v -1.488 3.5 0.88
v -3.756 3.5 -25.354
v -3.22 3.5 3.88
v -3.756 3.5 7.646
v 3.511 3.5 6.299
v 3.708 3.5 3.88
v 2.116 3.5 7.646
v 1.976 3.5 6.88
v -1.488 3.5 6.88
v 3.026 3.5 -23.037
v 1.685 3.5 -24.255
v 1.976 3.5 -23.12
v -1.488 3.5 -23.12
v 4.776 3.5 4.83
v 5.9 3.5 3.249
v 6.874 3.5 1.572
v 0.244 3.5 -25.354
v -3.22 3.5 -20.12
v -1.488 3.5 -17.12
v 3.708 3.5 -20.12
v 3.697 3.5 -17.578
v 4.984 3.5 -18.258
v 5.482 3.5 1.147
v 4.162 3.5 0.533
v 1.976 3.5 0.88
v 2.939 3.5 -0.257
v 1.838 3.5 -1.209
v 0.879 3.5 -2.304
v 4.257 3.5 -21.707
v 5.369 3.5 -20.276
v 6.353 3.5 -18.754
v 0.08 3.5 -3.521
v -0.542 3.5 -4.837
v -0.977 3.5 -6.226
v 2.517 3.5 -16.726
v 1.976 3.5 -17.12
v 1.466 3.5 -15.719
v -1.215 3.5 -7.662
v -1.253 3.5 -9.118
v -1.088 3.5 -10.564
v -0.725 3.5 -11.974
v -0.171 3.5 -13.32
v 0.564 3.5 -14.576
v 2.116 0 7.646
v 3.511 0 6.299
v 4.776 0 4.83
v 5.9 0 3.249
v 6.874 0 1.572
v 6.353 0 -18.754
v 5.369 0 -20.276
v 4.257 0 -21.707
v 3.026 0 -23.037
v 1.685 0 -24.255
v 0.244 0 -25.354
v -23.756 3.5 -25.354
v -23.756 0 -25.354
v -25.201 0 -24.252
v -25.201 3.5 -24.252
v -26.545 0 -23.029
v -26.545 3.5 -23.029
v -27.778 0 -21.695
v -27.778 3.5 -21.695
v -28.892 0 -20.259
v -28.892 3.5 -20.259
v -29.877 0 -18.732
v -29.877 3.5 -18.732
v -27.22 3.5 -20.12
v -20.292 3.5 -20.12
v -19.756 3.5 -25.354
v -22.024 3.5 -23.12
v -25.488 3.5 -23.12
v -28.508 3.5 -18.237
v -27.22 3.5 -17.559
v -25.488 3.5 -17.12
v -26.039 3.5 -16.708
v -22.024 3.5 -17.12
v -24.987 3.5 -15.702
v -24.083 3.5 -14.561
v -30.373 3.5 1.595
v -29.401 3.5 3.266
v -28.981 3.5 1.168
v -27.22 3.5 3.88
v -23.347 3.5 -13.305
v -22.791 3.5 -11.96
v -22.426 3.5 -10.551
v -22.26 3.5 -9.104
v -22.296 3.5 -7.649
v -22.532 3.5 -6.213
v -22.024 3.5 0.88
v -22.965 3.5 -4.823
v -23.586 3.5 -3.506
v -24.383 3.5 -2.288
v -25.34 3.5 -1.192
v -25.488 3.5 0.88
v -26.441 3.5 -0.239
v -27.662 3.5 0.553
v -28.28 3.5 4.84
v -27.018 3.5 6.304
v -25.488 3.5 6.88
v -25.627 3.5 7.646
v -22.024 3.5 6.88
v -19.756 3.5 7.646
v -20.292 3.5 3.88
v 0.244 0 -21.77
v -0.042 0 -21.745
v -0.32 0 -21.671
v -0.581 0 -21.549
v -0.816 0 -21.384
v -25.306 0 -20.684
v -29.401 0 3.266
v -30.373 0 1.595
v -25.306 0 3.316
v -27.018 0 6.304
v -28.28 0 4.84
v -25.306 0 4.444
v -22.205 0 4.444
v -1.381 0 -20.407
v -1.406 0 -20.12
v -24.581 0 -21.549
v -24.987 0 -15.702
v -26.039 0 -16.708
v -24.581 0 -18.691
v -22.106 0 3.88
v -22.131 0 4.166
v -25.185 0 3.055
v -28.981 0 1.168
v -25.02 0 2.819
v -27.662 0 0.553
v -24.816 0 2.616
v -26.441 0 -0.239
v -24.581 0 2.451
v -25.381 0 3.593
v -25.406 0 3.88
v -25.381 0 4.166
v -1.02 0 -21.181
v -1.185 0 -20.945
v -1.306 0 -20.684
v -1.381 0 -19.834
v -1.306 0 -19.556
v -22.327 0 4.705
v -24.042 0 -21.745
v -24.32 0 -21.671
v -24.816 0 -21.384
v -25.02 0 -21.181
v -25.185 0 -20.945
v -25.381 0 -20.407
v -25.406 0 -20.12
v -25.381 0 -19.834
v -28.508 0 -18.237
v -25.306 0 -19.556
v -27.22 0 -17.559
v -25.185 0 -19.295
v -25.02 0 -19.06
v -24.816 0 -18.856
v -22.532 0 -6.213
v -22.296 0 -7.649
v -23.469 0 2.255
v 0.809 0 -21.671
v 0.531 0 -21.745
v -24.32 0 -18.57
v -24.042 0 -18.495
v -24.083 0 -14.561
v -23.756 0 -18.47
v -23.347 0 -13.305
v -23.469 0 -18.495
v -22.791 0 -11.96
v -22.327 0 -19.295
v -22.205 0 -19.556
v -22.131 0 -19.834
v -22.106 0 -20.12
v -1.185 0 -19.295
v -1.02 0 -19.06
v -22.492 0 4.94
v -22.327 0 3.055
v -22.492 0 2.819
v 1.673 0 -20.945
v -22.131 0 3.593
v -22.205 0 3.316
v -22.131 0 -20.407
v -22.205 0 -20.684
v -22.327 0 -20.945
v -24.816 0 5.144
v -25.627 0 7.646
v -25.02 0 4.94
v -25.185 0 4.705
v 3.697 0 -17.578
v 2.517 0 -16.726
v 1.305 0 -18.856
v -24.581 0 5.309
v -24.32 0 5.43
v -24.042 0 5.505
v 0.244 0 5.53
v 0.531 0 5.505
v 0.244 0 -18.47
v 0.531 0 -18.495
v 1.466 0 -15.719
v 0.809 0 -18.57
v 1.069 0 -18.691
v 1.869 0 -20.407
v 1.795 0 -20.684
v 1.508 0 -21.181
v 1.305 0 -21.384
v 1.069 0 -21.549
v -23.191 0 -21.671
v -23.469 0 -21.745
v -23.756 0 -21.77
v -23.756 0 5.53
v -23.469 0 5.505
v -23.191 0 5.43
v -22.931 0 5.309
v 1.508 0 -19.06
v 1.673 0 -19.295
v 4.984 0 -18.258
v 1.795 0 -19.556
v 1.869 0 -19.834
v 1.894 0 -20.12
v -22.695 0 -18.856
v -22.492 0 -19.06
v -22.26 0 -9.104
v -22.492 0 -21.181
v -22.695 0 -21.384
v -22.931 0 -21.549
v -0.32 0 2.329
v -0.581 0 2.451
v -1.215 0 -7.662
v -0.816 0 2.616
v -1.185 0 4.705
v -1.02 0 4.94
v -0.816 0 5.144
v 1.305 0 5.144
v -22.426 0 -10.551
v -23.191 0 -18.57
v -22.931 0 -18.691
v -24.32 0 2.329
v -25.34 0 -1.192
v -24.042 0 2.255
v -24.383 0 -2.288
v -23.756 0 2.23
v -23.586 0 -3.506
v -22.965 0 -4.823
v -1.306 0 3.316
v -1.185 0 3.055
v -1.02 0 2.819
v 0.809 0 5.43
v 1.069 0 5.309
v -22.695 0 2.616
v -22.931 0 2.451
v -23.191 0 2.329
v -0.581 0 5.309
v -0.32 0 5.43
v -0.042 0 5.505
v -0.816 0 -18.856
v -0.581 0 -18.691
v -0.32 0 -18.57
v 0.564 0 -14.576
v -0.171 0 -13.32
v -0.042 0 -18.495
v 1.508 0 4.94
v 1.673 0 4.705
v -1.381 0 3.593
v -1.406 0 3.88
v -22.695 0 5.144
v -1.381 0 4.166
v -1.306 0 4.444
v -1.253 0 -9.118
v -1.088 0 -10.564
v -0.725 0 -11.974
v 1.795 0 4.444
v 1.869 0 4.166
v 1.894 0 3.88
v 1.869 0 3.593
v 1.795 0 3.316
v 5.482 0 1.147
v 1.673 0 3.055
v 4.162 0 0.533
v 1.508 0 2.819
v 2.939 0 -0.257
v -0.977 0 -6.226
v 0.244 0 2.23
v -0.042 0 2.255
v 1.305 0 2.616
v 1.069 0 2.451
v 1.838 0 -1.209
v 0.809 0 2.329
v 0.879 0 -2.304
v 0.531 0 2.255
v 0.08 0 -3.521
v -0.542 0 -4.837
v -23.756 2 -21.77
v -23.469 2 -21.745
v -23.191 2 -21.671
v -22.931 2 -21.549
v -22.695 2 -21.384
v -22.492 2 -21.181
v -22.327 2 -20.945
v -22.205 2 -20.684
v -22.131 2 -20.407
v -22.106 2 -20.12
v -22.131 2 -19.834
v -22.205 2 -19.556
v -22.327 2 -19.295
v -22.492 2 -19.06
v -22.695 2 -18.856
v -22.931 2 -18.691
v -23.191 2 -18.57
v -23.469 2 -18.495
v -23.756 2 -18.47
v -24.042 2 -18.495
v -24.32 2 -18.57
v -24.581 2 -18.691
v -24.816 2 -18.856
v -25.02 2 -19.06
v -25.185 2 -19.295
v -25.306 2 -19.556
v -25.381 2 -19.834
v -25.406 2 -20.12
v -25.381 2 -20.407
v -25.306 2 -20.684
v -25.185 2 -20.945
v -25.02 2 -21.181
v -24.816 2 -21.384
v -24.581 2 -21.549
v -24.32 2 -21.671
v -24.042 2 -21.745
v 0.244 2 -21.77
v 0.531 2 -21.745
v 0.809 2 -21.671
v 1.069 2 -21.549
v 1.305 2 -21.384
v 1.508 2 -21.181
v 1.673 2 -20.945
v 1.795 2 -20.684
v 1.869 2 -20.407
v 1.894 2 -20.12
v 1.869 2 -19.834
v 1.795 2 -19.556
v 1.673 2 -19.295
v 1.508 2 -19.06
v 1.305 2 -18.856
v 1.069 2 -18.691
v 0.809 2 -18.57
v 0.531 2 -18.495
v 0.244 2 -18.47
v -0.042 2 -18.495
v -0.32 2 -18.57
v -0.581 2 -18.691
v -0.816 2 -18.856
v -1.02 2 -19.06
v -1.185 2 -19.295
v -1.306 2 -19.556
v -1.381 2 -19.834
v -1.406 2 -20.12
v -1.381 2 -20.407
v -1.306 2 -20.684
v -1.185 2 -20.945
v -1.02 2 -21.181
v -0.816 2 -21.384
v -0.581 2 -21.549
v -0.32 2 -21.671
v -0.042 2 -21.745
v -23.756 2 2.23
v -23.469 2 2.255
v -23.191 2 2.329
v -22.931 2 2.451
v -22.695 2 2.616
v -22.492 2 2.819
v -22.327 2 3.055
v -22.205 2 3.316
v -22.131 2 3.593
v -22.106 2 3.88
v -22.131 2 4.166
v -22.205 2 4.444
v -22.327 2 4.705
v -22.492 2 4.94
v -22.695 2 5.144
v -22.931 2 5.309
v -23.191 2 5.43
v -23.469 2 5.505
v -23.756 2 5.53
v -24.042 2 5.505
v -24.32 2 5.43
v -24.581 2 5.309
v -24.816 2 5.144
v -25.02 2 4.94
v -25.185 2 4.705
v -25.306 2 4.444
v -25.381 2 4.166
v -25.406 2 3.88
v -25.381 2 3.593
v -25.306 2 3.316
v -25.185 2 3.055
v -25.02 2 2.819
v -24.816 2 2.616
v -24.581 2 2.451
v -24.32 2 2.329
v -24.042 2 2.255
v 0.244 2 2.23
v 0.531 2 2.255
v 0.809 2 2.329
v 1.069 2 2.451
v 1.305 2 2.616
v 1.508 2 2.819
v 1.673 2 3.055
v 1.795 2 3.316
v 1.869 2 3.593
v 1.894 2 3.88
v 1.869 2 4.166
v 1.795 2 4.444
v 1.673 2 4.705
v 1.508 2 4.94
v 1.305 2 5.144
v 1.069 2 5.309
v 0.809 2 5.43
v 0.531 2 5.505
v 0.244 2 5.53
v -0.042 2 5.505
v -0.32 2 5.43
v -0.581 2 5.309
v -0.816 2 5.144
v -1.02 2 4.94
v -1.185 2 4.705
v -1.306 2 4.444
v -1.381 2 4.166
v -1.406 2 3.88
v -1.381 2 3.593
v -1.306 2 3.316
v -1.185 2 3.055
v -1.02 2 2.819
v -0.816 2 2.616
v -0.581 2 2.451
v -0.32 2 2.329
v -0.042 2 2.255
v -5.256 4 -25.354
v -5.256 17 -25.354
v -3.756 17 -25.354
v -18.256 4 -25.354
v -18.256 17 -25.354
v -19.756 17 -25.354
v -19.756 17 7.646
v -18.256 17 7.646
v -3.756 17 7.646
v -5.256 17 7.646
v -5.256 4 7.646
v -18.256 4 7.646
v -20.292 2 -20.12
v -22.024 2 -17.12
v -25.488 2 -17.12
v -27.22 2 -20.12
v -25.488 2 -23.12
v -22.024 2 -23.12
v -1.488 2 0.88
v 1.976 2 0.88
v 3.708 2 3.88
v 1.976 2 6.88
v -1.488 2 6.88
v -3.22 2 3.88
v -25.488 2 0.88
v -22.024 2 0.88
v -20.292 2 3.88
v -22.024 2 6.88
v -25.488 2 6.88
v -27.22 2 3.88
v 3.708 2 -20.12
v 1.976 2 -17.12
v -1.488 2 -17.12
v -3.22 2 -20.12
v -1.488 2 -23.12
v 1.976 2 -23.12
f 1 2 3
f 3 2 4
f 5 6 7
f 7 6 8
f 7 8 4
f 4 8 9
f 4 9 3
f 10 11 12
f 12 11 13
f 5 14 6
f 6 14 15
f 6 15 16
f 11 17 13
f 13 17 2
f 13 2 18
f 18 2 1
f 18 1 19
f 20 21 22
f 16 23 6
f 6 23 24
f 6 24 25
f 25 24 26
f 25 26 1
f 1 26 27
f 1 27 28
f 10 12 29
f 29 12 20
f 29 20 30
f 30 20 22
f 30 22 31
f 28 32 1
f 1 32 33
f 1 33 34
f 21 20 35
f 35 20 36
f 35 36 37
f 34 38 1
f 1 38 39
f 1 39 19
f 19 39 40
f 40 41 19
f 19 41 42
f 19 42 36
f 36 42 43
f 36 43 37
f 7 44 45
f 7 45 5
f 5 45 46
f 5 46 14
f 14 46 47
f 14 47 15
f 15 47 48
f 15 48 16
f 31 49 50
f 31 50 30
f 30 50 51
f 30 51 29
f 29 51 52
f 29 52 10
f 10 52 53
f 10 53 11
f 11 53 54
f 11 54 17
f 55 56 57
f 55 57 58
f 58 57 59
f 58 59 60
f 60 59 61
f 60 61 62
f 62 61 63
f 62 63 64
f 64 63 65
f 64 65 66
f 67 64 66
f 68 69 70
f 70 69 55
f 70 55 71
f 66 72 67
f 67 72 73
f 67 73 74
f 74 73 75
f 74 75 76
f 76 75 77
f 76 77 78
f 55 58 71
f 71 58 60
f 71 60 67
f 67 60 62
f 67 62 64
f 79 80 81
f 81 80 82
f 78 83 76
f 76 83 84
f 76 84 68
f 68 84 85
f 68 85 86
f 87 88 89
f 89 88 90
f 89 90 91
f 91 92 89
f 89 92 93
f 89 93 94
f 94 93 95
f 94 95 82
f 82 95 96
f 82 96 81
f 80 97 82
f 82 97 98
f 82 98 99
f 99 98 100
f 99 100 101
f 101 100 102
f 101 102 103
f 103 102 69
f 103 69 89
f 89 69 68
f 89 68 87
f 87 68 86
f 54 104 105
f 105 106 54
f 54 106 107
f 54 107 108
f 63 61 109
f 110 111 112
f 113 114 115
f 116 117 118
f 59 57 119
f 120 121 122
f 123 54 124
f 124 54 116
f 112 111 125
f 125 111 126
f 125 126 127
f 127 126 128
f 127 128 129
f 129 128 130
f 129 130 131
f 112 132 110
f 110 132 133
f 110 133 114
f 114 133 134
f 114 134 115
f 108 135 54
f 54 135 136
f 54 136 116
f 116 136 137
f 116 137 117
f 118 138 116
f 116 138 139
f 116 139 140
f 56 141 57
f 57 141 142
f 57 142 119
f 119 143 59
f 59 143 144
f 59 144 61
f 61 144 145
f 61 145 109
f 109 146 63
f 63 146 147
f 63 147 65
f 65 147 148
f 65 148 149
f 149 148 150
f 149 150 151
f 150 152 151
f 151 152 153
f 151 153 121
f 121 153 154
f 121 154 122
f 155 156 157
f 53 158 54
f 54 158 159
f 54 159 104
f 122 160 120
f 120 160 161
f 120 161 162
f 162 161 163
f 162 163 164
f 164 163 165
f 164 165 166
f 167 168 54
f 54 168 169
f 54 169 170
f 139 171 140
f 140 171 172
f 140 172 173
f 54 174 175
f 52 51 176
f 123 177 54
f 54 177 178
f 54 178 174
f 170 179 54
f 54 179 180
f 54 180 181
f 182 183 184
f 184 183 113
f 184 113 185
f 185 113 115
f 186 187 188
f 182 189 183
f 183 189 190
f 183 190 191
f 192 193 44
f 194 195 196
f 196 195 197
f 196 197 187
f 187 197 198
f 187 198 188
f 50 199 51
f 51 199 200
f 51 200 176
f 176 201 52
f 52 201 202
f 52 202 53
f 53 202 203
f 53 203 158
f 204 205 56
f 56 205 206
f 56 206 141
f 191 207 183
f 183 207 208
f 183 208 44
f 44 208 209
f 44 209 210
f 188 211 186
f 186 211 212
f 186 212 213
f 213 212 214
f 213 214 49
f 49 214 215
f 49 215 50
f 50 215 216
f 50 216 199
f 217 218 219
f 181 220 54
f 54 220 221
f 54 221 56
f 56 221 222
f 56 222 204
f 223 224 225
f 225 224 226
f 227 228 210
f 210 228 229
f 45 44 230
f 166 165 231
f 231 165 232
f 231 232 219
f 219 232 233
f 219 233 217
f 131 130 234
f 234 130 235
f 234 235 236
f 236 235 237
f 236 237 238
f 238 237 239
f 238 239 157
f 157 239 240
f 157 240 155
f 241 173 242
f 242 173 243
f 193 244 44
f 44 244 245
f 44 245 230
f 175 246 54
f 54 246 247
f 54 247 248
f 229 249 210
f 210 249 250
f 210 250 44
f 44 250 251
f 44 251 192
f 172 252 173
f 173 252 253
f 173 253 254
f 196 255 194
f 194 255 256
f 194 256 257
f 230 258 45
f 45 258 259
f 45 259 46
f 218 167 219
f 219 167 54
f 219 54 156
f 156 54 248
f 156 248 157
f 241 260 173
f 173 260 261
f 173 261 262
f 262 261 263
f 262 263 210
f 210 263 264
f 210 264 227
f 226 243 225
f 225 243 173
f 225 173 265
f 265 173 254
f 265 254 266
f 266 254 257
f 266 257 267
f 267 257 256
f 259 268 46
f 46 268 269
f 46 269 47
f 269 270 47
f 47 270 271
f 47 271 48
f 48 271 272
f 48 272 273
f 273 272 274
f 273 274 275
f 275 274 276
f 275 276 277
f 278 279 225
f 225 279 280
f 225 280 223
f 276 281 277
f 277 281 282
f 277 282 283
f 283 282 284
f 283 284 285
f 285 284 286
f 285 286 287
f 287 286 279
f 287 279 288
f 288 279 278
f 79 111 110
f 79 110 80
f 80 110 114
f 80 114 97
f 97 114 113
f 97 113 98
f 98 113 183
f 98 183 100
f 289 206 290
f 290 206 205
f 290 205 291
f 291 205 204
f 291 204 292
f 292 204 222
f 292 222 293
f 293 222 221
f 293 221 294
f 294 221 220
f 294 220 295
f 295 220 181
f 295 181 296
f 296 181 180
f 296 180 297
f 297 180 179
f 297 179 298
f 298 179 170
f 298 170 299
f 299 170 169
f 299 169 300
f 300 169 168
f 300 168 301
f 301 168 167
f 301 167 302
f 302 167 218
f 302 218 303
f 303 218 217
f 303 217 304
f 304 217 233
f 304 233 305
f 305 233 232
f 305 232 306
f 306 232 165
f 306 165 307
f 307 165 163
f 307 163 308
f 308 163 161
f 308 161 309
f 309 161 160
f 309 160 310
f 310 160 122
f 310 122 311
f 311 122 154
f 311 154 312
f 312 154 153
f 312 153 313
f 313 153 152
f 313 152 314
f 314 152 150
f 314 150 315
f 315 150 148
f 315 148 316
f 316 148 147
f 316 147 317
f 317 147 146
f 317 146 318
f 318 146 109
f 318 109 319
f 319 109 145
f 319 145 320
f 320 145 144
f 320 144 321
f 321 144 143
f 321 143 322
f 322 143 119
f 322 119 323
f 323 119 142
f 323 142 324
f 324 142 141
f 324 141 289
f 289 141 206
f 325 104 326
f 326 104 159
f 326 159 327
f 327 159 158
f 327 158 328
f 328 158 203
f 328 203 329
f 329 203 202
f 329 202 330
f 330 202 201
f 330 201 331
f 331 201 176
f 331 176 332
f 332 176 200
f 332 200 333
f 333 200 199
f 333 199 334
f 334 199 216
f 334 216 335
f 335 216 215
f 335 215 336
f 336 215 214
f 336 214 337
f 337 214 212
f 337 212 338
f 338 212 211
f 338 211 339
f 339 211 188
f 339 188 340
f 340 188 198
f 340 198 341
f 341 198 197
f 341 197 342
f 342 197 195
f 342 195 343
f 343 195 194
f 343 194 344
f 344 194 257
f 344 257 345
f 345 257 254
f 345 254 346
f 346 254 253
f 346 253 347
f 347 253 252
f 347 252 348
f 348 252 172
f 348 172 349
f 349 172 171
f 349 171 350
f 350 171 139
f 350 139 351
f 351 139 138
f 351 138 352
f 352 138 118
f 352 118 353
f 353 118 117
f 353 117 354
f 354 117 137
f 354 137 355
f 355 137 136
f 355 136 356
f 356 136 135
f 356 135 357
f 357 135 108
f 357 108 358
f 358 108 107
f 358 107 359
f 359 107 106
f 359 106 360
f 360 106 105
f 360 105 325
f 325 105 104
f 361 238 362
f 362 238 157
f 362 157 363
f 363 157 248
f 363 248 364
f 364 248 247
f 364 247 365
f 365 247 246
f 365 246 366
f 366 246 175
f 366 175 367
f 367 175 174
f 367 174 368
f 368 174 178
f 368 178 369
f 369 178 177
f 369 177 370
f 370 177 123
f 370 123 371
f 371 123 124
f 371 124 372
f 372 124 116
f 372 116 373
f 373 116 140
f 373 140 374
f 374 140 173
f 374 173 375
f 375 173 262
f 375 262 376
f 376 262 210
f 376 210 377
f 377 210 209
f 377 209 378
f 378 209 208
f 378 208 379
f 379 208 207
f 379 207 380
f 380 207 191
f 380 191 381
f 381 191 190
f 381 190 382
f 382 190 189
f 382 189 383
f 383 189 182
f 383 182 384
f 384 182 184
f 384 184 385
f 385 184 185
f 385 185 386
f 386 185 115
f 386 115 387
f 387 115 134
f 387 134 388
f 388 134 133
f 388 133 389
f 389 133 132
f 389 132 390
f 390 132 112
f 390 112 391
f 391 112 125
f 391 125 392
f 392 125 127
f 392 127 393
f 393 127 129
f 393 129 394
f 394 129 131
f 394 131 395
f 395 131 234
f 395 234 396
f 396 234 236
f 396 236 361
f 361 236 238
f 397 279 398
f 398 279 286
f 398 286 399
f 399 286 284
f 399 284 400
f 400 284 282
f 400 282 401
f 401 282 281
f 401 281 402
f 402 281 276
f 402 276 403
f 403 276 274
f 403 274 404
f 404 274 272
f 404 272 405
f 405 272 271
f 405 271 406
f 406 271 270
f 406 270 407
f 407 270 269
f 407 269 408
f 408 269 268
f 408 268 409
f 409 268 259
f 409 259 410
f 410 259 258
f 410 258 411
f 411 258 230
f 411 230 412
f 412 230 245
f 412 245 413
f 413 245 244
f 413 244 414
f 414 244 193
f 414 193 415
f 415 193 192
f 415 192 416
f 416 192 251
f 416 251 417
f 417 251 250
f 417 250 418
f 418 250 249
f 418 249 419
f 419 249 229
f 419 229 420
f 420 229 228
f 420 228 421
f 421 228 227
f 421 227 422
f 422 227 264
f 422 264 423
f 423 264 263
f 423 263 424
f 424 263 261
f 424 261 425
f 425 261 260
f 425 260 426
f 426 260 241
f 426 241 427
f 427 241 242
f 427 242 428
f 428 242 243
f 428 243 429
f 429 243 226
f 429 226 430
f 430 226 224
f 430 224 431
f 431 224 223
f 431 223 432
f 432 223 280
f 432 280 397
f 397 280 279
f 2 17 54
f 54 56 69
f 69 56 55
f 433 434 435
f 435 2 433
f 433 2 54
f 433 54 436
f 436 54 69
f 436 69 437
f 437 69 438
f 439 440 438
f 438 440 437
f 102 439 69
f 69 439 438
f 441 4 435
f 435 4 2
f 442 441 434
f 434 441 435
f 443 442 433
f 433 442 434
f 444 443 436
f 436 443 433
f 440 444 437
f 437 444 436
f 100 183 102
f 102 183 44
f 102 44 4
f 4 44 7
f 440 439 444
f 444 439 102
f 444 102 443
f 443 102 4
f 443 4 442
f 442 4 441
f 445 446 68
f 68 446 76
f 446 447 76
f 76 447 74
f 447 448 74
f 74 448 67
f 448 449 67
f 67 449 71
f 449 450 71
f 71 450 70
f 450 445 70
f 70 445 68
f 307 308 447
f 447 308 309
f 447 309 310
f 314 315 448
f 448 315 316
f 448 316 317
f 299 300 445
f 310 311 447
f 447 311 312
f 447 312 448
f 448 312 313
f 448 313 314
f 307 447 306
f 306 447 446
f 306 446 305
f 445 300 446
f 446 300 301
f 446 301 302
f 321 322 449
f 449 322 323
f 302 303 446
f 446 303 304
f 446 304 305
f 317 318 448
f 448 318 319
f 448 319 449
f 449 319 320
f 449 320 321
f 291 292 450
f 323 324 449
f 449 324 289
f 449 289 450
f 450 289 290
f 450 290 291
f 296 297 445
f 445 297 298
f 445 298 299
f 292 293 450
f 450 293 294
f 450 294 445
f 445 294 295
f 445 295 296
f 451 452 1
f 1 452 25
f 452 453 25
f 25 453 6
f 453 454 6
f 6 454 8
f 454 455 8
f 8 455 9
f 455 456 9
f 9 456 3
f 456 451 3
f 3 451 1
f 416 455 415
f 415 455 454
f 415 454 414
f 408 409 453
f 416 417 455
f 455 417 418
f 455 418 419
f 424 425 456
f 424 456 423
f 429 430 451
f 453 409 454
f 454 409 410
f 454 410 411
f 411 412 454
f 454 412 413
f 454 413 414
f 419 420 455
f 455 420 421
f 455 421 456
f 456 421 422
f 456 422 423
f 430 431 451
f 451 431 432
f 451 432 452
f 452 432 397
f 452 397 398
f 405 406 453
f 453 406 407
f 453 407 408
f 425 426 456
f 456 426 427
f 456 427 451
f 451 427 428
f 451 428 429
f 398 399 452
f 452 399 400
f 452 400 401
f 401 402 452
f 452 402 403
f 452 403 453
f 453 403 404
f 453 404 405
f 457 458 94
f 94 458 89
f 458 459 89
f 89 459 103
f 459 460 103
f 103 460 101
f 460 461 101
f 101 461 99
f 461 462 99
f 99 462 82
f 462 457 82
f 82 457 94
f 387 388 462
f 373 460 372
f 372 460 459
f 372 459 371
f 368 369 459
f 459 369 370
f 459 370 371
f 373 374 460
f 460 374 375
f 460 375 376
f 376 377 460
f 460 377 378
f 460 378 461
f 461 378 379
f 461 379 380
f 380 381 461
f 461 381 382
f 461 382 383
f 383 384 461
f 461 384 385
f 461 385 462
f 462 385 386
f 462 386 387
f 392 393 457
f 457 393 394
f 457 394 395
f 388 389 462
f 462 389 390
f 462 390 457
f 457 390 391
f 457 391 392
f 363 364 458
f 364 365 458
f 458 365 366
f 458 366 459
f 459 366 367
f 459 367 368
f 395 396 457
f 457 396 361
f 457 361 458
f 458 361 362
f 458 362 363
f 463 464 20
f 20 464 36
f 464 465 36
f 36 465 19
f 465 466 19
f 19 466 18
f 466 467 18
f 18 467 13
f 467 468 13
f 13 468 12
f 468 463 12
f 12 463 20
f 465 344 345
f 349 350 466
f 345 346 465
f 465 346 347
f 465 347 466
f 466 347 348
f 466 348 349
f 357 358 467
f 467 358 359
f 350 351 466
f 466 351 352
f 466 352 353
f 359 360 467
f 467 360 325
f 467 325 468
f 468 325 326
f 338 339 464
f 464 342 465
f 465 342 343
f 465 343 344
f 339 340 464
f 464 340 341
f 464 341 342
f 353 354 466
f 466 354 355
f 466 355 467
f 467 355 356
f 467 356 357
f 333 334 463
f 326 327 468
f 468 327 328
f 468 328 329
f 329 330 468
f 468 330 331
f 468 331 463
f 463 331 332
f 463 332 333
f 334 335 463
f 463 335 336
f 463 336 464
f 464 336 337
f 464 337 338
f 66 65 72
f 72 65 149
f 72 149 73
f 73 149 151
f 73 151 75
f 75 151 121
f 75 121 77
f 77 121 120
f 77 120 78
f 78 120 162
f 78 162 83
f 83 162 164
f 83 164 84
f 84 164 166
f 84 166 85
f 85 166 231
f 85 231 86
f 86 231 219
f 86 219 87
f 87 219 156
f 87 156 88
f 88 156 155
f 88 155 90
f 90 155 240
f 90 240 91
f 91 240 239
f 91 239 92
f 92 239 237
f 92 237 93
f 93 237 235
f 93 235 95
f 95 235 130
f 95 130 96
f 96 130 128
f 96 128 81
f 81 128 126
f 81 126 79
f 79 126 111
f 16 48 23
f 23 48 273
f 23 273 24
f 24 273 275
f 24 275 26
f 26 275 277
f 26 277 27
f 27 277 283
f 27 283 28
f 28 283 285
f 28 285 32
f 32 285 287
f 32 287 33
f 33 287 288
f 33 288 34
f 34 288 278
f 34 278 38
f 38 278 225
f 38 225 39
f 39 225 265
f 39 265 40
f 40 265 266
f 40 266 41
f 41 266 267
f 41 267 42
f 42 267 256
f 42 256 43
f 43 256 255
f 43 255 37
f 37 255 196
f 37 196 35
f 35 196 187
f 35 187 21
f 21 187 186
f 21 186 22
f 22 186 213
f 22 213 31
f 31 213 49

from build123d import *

# Parameters (mm, degrees)
SKETCH1_R               = 21
SKETCH1_R_2             = 1.65
BOSS_EXTRUDE2_DEPTH     = 3.5
CUT_EXTRUDE1_DEPTH      = 1
CUT_EXTRUDE1_DEPTH_BACK = 4.5
BOSS_EXTRUDE3_DEPTH     = 33
CUT_EXTRUDE2_START      = -3.5
CUT_EXTRUDE2_DEPTH      = 1.5
SKETCH7_R               = 10.5
SKETCH7_W               = 41.986856553
SKETCH7_H               = 9.070253879
CUT_EXTRUDE3_DEPTH      = 18


with BuildPart() as part:
    # Sketch1 → Boss-Extrude2 (new body)
    with BuildSketch(Plane(origin=(0, 0, 0), x_dir=(1, 0, 0), z_dir=(0, 1, 0))):
        with Locations((-11.755661444, 8.120165848)):
            Circle(SKETCH1_R)
        with Locations((-23.755661444, 20.120165848)):
            Circle(SKETCH1_R_2, mode=Mode.SUBTRACT)
        with Locations((0.244338556, 20.120165848)):
            Circle(SKETCH1_R_2, mode=Mode.SUBTRACT)
        with Locations((-23.755661444, -3.879834152)):
            Circle(SKETCH1_R_2, mode=Mode.SUBTRACT)
        with Locations((0.244338556, -3.879834152)):
            Circle(SKETCH1_R_2, mode=Mode.SUBTRACT)
    extrude(amount=BOSS_EXTRUDE2_DEPTH)

    # Sketch3 → Cut-Extrude1 (cut, two sides)
    with BuildSketch(Plane(origin=(0, 3.5, 0), x_dir=(1, 0, 0), z_dir=(0, 1, 0))) as cut_extrude1_sk:
        Polygon((-134.766846833, 25.353853788), (-23.755661444, 25.353853788), (0.244338556, 25.353853788), (111.255523946, 25.353853788), (111.255523946, 247.376224567), (-134.766846833, 247.376224567), align=None)
    extrude(amount=CUT_EXTRUDE1_DEPTH, mode=Mode.SUBTRACT)
    extrude(cut_extrude1_sk.sketch, amount=-CUT_EXTRUDE1_DEPTH_BACK, mode=Mode.SUBTRACT)

    # Sketch4 → Boss-Extrude3 (add)
    with BuildSketch(Plane(origin=(0, 0, -25.353853788), x_dir=(-1, 0, 0), z_dir=(0, 0, -1))):
        Polygon((3.755661444, 13.225065807), (3.755661444, 3.5), (19.755661444, 3.5), (19.755661444, 13.225065807), (19.755661444, 17), (18.255661444, 17), (18.255661444, 4), (5.255661444, 4), (5.255661444, 17), (3.755661444, 17), align=None)
    extrude(amount=-BOSS_EXTRUDE3_DEPTH)

    # Sketch6 → Cut-Extrude2 (cut)
    with BuildSketch(Plane.XZ.offset(CUT_EXTRUDE2_START)):
        Polygon((-22.023610636, -17.120165848), (-25.487712251, -17.120165848), (-27.219763059, -20.120165848), (-25.487712251, -23.120165848), (-22.023610636, -23.120165848), (-20.291559828, -20.120165848), align=None)
        Polygon((-22.023610636, 0.879834152), (-20.291559828, 3.879834152), (-22.023610636, 6.879834152), (-25.487712251, 6.879834152), (-27.219763059, 3.879834152), (-25.487712251, 0.879834152), align=None)
        Polygon((1.976389364, 0.879834152), (3.708440172, 3.879834152), (1.976389364, 6.879834152), (-1.487712251, 6.879834152), (-3.219763059, 3.879834152), (-1.487712251, 0.879834152), align=None)
        Polygon((1.976389364, -17.120165848), (-1.487712251, -17.120165848), (-3.219763059, -20.120165848), (-1.487712251, -23.120165848), (1.976389364, -23.120165848), (3.708440172, -20.120165848), align=None)
    extrude(amount=CUT_EXTRUDE2_DEPTH, mode=Mode.SUBTRACT)

    # Sketch7 → Cut-Extrude3 (cut, through all)
    with BuildSketch(Plane.XZ):
        with Locations((-32.749417947, -8.63220869)):
            Circle(SKETCH7_R)
        with Locations((9.237438606, -8.658450465)):
            Circle(SKETCH7_R)
        with Locations((-11.755989671, 12.181273152)):
            Rectangle(SKETCH7_W, SKETCH7_H)
    extrude(amount=-CUT_EXTRUDE3_DEPTH, mode=Mode.SUBTRACT)


solid = part.part
